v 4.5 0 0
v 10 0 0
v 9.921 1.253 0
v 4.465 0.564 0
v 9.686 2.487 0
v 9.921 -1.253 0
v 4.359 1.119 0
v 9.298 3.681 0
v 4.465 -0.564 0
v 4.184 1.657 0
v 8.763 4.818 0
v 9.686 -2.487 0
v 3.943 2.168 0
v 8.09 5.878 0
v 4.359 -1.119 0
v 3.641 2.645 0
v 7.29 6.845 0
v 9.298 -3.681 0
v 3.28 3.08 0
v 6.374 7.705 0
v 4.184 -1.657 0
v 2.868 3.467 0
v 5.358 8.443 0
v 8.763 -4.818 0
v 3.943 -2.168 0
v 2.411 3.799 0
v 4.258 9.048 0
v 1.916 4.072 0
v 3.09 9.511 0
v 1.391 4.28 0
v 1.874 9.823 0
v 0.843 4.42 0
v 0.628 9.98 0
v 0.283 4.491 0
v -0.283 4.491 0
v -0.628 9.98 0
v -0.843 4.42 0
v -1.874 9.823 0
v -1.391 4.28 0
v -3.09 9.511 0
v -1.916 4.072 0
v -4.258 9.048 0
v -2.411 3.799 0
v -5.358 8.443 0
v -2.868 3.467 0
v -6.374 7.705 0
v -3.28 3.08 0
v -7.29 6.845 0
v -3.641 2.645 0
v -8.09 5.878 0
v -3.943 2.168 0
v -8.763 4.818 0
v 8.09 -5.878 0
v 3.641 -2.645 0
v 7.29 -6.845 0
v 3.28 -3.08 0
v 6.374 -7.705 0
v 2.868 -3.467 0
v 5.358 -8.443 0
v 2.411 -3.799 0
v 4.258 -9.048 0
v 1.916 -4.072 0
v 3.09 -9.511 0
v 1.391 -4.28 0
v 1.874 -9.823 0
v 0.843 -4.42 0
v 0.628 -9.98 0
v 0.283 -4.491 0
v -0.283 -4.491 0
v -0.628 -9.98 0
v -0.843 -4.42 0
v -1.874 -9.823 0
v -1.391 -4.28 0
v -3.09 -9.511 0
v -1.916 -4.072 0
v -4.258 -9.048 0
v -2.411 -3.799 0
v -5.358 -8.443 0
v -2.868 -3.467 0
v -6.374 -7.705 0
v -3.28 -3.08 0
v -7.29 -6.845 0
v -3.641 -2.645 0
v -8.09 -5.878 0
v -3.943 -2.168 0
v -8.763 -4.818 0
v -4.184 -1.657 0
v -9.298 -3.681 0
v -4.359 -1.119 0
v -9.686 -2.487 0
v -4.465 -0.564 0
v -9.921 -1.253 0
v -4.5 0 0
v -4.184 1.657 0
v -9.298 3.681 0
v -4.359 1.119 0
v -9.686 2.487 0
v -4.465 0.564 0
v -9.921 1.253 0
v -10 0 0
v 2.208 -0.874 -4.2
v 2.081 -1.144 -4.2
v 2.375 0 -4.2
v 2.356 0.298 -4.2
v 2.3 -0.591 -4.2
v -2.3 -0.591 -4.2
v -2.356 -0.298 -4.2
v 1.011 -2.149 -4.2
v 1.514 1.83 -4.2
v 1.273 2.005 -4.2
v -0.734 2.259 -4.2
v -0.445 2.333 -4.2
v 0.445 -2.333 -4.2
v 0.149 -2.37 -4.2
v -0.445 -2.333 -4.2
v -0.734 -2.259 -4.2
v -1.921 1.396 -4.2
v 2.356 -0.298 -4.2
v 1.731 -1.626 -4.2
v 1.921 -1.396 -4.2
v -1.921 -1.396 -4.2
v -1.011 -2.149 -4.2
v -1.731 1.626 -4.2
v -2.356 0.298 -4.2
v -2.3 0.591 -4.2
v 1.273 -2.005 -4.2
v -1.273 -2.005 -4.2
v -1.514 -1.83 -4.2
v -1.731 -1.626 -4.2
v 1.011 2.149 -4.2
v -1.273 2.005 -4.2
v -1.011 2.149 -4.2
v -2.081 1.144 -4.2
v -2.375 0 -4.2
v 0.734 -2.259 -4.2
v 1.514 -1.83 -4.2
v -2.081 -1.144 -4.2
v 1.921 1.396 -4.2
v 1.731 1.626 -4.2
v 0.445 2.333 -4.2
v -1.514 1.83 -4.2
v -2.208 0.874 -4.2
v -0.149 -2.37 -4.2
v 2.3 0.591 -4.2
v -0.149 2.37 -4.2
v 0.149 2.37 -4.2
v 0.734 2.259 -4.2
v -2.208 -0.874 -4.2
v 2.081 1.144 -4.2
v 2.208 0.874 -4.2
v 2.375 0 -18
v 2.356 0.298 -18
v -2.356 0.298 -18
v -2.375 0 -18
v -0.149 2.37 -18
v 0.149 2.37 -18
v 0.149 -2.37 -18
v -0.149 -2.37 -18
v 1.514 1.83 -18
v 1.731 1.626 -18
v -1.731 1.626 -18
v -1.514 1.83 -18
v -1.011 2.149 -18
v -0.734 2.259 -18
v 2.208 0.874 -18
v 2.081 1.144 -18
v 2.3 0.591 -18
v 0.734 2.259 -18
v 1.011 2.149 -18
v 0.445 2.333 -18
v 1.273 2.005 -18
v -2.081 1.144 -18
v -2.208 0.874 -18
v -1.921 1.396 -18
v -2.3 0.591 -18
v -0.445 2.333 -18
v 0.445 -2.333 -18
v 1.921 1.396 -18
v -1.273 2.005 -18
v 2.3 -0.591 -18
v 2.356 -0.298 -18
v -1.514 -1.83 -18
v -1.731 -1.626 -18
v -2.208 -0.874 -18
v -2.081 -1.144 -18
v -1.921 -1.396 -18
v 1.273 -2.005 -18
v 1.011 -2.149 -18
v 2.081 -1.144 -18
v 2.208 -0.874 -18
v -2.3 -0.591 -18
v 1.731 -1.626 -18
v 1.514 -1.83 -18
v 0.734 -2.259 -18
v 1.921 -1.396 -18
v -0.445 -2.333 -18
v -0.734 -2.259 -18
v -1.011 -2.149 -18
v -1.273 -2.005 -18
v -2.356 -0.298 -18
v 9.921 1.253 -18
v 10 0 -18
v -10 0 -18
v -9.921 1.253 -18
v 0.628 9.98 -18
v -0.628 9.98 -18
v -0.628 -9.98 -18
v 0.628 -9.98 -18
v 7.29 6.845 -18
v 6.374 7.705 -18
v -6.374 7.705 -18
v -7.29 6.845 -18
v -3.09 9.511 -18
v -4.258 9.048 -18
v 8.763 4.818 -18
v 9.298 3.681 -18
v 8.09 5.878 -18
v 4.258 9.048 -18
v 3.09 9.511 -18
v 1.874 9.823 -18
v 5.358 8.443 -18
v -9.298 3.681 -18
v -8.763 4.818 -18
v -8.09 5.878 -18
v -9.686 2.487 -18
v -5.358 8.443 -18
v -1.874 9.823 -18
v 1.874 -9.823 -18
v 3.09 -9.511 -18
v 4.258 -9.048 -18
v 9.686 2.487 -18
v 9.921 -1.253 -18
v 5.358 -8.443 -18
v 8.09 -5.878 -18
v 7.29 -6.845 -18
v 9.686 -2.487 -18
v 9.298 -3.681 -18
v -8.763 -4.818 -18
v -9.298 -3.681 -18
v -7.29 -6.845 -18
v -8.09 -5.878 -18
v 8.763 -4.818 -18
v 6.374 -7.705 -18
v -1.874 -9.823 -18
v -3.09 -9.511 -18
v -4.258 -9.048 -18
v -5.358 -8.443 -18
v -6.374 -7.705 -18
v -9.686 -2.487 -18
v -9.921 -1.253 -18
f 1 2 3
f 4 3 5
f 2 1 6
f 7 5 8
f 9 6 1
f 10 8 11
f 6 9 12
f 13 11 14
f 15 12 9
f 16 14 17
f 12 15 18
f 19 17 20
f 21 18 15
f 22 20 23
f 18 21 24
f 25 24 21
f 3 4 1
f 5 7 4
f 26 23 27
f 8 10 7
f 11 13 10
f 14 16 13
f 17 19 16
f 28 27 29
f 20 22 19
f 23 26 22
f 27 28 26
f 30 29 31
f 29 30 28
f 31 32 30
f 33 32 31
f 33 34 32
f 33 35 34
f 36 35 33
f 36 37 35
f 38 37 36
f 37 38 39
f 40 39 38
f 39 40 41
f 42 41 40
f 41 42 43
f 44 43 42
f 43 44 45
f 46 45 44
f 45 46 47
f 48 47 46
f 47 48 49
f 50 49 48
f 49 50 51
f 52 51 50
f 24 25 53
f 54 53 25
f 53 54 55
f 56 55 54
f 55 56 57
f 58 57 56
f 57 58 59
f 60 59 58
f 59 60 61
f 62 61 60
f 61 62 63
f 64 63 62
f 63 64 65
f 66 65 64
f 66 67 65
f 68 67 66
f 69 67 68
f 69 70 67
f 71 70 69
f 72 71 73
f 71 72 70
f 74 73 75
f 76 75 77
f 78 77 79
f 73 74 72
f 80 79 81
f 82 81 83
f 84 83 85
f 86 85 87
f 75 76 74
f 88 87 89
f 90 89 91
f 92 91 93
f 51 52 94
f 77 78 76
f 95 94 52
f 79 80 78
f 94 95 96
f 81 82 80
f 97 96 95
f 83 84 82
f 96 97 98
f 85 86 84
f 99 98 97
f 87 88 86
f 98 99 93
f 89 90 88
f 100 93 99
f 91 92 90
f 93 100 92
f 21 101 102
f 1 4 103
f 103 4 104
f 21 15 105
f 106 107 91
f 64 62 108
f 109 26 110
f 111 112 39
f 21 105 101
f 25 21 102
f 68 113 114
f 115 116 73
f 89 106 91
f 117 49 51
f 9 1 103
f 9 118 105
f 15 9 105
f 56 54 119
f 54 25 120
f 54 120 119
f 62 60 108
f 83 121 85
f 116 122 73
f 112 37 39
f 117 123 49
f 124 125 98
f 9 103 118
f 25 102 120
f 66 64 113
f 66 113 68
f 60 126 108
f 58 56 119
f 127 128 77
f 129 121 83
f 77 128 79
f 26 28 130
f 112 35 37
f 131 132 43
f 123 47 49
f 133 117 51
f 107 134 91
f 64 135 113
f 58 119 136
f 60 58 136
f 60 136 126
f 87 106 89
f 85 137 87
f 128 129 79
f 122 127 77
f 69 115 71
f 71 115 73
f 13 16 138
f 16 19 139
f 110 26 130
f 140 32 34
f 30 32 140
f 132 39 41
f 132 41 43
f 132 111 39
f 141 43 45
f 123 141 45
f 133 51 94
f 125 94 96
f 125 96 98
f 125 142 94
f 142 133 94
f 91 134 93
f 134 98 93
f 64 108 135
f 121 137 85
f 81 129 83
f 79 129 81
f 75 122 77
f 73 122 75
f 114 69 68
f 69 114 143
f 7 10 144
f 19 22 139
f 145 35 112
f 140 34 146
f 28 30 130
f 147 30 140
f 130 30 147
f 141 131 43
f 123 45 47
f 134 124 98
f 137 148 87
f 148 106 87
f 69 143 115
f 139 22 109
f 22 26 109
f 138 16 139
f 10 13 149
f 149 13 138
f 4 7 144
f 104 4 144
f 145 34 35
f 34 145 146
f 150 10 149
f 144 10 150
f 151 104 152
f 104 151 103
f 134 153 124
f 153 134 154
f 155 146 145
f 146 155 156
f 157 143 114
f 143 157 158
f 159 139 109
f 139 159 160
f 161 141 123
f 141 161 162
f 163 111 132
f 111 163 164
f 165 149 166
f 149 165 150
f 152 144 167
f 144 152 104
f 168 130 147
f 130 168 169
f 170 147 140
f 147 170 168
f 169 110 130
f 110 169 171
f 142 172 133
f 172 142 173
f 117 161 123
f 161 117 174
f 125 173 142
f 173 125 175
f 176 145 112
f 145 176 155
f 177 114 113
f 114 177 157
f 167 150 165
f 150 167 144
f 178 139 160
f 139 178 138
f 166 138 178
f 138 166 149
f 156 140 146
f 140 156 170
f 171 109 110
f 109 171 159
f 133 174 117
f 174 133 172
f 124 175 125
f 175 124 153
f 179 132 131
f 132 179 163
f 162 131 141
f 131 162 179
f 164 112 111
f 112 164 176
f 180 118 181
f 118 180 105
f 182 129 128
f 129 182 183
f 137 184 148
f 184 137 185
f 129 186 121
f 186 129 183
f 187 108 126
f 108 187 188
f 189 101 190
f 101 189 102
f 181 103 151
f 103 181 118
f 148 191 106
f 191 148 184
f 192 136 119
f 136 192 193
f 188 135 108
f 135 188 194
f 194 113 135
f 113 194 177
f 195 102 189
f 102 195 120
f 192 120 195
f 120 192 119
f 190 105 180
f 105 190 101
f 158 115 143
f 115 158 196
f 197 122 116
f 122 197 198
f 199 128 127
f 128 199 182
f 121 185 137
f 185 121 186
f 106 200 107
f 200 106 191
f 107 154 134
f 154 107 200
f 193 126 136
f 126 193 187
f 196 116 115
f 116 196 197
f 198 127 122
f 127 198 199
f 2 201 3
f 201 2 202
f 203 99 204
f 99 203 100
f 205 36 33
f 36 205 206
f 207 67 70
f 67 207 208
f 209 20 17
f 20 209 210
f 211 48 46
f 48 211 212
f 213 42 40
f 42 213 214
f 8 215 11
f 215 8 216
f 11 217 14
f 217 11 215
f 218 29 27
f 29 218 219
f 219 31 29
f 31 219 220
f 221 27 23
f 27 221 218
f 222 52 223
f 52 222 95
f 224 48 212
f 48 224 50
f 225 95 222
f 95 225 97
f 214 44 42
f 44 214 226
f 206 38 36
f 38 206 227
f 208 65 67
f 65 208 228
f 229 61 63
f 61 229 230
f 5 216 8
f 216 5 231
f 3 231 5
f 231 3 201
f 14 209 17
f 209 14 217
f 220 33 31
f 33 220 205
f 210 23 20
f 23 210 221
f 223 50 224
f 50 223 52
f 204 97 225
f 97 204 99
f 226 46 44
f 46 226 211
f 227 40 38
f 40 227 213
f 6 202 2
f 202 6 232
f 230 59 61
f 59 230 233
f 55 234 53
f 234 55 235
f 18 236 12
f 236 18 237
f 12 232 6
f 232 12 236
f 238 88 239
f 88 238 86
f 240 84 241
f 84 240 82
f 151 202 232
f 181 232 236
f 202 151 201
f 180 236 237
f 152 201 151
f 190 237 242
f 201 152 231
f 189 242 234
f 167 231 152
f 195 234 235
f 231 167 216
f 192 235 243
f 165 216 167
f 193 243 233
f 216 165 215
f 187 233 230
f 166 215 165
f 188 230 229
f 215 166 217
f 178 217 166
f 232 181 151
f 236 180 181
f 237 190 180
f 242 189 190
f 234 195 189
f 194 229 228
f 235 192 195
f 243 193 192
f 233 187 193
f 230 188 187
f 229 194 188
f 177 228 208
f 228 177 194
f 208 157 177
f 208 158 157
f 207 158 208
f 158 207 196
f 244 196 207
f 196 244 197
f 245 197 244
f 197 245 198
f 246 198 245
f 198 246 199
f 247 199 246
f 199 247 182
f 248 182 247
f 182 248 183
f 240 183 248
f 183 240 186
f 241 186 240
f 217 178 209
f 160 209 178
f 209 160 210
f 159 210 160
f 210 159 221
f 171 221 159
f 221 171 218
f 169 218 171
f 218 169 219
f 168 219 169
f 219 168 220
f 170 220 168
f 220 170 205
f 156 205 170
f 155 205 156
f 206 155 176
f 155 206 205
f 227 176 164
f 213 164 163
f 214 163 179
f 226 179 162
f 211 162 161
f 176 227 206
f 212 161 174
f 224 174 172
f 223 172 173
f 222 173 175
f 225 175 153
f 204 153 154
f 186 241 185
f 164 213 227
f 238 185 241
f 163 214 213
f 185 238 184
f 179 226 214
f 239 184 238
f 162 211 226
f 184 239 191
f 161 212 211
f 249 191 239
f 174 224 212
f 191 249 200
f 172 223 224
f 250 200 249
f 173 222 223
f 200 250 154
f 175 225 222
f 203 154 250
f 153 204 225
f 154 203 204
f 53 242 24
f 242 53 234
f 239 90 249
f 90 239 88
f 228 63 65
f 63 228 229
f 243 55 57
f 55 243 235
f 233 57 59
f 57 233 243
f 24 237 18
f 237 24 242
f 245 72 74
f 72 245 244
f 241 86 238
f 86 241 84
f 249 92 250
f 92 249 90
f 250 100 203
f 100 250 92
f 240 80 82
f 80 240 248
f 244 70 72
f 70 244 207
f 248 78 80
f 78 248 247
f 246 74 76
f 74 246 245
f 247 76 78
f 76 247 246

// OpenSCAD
$fn = 50;


difference() {
	union() {
		translate(v = [0, 0, -18.0000000000]) {
			cylinder(h = 18, r = 10.0000000000);
		}
	}
	union() {
		translate(v = [0, 0, 0]) {
			rotate(a = [0, 0, 0]) {
				difference() {
					union() {
						translate(v = [0, 0, -21.0000000000]) {
							cylinder(h = 21, r = 2.2500000000);
						}
						translate(v = [0, 0, -4.2000000000]) {
							cylinder(h = 4.2000000000, r1 = 2.3750000000, r2 = 4.5000000000);
						}
						translate(v = [0, 0, -21.0000000000]) {
							cylinder(h = 21, r = 2.3750000000);
						}
						translate(v = [0, 0, -21.0000000000]) {
							cylinder(h = 21, r = 2.2500000000);
						}
					}
					union();
				}
			}
		}
	}
}
